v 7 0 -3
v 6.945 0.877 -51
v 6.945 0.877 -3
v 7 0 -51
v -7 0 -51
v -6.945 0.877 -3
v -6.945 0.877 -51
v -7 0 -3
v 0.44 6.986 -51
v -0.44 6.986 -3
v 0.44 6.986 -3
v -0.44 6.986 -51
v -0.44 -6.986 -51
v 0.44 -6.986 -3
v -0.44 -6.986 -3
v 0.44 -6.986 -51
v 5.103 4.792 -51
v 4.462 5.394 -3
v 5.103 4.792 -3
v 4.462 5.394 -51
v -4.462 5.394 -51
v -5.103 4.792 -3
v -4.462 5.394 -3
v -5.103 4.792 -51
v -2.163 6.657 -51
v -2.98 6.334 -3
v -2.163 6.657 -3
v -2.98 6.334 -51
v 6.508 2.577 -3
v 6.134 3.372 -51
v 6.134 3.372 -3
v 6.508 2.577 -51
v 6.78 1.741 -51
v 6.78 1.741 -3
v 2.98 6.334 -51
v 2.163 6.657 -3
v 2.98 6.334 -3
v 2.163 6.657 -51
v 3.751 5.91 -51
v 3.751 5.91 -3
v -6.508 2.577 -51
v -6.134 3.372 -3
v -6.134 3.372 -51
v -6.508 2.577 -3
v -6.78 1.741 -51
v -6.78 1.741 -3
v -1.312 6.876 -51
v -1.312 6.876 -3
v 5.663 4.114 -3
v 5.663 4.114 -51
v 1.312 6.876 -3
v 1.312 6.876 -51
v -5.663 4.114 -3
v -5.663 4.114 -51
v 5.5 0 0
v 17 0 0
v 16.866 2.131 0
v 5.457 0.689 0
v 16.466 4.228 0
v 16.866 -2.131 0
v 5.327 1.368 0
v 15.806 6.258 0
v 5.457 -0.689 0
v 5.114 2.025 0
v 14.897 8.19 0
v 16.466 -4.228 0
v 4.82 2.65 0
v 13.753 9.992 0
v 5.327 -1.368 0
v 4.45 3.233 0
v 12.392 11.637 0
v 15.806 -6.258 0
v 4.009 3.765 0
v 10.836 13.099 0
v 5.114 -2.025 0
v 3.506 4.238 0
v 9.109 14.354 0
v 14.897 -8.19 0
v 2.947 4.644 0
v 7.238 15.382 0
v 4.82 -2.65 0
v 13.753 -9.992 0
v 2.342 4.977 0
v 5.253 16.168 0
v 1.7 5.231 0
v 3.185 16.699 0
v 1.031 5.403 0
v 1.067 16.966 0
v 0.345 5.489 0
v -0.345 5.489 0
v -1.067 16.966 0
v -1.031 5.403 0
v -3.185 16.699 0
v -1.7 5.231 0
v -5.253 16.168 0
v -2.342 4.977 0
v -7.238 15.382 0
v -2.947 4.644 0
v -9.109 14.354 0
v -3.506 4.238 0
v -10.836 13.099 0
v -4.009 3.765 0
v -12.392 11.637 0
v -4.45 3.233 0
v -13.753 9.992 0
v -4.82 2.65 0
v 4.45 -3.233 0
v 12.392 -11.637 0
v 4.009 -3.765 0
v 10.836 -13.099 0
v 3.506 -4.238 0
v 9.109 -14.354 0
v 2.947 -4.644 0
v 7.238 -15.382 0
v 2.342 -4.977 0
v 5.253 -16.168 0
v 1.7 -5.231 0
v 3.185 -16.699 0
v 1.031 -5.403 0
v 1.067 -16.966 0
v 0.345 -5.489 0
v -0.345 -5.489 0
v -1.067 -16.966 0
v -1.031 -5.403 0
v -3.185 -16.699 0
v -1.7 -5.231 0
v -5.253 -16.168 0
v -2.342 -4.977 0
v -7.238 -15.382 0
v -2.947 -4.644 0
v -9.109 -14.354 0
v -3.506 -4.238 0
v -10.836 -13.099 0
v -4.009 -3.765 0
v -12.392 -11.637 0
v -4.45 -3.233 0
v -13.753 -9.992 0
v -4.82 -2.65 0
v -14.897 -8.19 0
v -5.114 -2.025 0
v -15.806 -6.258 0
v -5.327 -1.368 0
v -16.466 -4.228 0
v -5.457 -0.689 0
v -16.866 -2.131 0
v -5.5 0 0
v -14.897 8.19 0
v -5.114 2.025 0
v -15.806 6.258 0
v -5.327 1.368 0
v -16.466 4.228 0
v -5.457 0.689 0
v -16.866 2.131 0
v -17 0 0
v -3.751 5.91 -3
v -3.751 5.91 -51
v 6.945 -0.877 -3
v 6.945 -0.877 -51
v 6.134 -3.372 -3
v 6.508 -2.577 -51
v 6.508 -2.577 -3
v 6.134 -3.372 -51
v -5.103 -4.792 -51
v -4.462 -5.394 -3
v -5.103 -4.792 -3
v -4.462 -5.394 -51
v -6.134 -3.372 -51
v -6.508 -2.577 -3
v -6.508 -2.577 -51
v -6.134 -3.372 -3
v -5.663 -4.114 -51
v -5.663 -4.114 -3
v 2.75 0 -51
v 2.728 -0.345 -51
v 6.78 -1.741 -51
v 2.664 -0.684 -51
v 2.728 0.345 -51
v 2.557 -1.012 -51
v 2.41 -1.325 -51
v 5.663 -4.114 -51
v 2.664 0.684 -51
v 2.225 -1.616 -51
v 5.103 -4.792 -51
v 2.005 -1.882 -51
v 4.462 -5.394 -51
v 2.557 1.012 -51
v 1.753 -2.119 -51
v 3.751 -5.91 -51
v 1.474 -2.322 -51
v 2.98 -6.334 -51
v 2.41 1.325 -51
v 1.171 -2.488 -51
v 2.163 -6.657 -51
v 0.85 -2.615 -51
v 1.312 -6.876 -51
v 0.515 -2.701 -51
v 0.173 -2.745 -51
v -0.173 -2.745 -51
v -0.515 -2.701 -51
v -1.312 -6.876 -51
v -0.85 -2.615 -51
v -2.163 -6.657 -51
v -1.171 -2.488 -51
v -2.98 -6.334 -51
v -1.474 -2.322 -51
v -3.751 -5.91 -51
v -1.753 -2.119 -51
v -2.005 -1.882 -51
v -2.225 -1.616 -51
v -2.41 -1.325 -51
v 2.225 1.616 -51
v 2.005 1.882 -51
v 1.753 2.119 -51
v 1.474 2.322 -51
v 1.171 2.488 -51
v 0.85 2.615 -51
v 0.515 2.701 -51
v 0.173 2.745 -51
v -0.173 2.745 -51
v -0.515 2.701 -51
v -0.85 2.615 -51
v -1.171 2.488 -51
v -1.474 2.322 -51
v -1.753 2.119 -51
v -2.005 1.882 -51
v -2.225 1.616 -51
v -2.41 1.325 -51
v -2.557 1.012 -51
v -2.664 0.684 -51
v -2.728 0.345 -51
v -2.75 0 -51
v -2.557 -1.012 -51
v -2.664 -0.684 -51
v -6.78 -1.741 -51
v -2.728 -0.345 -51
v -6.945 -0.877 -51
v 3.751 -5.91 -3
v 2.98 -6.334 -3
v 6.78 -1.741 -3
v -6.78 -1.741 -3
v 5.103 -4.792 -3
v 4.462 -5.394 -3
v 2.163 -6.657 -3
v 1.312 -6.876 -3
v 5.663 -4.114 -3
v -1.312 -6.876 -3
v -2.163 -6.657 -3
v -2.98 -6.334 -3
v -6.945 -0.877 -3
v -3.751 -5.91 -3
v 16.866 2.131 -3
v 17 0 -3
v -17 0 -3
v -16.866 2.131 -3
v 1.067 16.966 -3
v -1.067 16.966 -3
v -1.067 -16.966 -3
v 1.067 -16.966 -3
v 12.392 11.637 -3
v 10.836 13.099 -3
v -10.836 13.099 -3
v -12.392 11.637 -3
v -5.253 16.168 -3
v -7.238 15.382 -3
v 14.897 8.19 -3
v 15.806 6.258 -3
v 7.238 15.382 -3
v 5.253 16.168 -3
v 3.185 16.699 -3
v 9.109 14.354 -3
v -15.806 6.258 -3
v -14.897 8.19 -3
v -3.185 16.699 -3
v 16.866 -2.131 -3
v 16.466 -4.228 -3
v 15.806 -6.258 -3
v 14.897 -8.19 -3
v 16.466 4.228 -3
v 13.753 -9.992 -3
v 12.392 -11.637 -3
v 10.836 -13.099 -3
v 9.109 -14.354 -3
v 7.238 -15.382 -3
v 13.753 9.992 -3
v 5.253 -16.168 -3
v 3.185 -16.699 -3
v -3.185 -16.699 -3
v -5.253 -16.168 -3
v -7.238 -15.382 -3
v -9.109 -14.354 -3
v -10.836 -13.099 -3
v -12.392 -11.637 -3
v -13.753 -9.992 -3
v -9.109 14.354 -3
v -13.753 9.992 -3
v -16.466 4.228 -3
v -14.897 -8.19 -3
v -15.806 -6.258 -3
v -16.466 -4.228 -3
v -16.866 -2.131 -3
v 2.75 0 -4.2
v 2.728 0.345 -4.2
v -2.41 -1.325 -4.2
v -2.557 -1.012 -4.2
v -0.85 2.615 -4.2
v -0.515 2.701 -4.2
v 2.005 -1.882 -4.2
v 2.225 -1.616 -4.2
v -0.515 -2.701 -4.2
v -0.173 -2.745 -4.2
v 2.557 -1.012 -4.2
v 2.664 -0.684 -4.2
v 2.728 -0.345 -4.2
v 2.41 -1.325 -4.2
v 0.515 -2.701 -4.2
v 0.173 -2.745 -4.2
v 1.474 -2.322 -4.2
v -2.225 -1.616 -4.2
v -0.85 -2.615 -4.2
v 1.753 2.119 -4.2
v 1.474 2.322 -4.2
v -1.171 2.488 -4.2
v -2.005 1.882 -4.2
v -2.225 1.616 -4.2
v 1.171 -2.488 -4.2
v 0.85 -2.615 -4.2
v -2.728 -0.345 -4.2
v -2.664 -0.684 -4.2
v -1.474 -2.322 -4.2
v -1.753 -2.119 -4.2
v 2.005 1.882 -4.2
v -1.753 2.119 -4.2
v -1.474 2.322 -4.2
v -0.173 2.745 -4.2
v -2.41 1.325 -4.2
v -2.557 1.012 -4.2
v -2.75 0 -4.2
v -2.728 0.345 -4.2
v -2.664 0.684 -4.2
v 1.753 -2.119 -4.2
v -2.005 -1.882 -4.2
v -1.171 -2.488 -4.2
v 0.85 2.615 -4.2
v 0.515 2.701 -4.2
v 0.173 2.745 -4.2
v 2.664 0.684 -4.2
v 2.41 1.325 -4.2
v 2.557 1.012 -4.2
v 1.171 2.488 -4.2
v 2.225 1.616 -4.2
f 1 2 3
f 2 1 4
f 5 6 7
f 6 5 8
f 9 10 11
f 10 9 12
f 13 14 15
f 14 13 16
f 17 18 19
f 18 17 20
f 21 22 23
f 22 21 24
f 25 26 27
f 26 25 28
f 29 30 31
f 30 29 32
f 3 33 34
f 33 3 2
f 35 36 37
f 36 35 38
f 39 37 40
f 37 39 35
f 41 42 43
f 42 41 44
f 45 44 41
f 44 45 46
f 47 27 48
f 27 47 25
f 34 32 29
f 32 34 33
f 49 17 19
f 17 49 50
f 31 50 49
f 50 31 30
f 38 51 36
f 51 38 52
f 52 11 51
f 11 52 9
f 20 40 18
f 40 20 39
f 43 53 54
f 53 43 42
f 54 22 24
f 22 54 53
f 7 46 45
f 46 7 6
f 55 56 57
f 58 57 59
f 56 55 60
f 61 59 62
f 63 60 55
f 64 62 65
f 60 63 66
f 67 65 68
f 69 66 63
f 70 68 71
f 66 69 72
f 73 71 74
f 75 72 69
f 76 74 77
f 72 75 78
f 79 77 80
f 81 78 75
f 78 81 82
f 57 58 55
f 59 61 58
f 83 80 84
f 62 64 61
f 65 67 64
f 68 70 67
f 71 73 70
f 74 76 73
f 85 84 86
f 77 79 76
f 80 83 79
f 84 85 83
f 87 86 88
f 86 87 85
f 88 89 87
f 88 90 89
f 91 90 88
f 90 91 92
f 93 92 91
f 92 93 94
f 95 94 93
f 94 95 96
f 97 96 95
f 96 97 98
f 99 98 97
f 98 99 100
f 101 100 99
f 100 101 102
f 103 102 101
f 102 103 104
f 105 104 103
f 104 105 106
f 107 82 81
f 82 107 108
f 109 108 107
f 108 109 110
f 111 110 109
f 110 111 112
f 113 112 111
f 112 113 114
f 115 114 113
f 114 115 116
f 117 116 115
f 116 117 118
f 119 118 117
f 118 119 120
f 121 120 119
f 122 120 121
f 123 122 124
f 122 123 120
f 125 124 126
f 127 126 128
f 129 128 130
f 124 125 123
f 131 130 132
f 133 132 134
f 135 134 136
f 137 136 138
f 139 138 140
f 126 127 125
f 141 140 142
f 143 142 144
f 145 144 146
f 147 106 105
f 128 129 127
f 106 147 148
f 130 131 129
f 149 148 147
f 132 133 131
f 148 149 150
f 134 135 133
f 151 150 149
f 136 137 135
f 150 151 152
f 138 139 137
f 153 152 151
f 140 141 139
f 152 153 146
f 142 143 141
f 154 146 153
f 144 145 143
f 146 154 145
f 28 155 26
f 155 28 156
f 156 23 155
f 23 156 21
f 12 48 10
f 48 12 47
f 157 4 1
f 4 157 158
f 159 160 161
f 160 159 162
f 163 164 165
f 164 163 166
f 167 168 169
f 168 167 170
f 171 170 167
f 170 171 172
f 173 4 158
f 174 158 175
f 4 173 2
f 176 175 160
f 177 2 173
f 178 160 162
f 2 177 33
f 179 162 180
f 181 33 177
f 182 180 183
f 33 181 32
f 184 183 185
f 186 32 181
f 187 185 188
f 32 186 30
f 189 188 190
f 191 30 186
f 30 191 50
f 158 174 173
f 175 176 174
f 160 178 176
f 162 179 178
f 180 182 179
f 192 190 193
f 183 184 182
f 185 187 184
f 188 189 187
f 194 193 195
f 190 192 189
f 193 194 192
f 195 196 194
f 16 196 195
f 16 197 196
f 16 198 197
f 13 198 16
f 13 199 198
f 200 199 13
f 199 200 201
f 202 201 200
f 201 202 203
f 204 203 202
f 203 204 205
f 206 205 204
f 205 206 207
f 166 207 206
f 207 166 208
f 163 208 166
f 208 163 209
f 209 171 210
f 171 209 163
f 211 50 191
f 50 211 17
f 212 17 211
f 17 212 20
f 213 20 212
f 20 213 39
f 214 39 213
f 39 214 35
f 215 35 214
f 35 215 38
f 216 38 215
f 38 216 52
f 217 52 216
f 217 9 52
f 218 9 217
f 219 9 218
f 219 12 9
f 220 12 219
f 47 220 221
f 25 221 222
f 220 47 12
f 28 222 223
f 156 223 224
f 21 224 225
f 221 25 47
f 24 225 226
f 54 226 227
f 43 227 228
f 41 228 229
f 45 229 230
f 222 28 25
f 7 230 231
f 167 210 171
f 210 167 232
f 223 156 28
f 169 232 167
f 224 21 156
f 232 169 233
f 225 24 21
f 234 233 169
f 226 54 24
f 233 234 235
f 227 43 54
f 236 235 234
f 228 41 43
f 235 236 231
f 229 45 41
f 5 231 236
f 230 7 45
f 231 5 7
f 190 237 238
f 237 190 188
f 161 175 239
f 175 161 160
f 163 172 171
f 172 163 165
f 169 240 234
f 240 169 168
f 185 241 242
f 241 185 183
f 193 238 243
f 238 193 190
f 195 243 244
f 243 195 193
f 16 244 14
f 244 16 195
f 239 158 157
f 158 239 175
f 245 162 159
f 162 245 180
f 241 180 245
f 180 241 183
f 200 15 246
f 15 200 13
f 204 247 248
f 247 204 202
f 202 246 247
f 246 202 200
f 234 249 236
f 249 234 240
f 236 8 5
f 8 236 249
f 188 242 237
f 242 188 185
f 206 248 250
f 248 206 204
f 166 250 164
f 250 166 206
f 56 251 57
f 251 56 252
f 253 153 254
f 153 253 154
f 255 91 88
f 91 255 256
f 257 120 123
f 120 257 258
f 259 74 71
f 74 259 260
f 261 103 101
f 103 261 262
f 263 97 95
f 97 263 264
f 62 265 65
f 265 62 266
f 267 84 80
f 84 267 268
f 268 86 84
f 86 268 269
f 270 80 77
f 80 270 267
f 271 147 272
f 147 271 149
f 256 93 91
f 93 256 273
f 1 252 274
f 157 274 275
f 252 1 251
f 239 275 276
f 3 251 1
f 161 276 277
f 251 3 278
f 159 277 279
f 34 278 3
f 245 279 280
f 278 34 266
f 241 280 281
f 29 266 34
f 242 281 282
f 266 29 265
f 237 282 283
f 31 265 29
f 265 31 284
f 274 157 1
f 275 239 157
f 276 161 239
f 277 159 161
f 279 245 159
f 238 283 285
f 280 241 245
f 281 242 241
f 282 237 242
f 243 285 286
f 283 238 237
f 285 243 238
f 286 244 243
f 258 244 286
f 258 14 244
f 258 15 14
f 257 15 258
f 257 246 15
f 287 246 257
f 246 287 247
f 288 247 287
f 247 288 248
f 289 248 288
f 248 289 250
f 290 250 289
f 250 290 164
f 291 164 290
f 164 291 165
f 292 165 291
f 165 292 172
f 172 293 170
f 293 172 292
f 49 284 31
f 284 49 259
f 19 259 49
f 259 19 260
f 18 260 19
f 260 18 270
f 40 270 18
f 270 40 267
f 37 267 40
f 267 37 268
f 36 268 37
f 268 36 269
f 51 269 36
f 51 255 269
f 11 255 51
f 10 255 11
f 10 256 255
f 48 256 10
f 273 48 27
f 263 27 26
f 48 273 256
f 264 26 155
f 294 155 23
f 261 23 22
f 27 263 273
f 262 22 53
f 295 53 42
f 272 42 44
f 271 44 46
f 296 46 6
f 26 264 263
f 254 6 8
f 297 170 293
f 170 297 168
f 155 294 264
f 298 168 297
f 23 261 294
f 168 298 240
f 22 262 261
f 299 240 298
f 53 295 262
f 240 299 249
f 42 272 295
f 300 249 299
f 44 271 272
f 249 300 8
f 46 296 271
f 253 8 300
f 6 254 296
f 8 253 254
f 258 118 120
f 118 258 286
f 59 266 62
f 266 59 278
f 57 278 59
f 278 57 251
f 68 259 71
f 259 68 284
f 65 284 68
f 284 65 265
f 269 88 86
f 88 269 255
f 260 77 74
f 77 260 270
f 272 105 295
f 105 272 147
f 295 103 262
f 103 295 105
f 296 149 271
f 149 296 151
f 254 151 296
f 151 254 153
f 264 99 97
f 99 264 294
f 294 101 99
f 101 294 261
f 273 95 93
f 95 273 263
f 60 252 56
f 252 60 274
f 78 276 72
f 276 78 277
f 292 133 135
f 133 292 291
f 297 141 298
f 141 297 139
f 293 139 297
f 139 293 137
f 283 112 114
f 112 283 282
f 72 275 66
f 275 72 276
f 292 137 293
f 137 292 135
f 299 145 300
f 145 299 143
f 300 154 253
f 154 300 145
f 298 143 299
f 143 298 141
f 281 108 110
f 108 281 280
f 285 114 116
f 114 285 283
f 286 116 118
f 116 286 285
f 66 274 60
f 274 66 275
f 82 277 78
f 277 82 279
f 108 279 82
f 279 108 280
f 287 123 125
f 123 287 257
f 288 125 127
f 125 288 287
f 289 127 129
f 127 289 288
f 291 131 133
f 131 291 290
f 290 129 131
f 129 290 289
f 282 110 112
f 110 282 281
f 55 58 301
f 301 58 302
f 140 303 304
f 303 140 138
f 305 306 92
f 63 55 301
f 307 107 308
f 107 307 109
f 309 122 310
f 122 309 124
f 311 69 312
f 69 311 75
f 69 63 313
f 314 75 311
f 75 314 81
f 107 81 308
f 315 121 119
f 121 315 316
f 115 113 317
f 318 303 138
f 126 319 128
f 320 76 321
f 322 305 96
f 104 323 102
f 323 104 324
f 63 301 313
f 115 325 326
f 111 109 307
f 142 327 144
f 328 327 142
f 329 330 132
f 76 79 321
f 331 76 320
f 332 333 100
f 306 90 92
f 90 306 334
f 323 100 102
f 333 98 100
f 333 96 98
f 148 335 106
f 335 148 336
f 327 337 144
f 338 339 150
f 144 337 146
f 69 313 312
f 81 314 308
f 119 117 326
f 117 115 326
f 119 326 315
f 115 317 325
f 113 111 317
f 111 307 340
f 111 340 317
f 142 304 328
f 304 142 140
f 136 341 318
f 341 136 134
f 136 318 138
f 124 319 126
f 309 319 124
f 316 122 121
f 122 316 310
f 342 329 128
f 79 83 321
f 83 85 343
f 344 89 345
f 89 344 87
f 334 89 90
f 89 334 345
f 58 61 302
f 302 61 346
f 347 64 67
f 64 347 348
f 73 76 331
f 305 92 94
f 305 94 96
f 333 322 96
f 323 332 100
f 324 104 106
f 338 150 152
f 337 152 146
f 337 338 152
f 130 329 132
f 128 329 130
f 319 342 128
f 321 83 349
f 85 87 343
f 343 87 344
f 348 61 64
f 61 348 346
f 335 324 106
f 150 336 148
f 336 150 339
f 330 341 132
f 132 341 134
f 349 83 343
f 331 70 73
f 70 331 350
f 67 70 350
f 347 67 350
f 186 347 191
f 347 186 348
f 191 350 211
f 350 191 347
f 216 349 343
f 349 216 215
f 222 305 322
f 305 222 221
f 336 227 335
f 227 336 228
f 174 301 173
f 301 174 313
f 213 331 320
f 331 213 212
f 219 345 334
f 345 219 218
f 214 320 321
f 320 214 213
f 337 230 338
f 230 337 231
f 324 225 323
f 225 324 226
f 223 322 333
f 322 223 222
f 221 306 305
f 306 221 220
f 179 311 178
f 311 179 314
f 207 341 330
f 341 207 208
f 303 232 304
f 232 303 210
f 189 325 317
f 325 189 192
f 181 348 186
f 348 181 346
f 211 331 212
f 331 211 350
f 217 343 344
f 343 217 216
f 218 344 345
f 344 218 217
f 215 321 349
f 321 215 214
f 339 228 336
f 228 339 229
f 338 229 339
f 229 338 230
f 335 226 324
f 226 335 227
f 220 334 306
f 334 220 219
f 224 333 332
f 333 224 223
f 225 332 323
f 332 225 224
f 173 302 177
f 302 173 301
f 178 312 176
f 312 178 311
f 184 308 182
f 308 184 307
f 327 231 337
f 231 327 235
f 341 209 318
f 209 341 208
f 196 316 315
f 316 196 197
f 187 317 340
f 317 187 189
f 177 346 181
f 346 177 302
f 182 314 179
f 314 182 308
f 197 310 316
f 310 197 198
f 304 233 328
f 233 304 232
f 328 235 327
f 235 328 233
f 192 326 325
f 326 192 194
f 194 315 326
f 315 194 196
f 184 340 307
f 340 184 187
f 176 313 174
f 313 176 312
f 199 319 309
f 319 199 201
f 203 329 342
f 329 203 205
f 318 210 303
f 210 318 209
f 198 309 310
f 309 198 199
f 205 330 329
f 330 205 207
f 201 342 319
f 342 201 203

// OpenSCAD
$fn = 50;


difference() {
	union() {
		translate(v = [0, 0, -51.0000000000]) {
			cylinder(h = 51, r = 7.0000000000);
		}
		translate(v = [0, 0, -3.0000000000]) {
			cylinder(h = 3, r = 17.0000000000);
		}
	}
	union() {
		translate(v = [0, 0, 0]) {
			rotate(a = [0, 0, 0]) {
				difference() {
					union() {
						#translate(v = [0, 0, -51.0000000000]) {
							cylinder(h = 51, r = 2.2500000000);
						}
						#translate(v = [0, 0, -4.2000000000]) {
							cylinder(h = 4.2000000000, r1 = 2.7500000000, r2 = 5.5000000000);
						}
						#translate(v = [0, 0, -51.0000000000]) {
							cylinder(h = 51, r = 2.7500000000);
						}
						#translate(v = [0, 0, -51.0000000000]) {
							cylinder(h = 51, r = 2.2500000000);
						}
					}
					union();
				}
			}
		}
	}
}
